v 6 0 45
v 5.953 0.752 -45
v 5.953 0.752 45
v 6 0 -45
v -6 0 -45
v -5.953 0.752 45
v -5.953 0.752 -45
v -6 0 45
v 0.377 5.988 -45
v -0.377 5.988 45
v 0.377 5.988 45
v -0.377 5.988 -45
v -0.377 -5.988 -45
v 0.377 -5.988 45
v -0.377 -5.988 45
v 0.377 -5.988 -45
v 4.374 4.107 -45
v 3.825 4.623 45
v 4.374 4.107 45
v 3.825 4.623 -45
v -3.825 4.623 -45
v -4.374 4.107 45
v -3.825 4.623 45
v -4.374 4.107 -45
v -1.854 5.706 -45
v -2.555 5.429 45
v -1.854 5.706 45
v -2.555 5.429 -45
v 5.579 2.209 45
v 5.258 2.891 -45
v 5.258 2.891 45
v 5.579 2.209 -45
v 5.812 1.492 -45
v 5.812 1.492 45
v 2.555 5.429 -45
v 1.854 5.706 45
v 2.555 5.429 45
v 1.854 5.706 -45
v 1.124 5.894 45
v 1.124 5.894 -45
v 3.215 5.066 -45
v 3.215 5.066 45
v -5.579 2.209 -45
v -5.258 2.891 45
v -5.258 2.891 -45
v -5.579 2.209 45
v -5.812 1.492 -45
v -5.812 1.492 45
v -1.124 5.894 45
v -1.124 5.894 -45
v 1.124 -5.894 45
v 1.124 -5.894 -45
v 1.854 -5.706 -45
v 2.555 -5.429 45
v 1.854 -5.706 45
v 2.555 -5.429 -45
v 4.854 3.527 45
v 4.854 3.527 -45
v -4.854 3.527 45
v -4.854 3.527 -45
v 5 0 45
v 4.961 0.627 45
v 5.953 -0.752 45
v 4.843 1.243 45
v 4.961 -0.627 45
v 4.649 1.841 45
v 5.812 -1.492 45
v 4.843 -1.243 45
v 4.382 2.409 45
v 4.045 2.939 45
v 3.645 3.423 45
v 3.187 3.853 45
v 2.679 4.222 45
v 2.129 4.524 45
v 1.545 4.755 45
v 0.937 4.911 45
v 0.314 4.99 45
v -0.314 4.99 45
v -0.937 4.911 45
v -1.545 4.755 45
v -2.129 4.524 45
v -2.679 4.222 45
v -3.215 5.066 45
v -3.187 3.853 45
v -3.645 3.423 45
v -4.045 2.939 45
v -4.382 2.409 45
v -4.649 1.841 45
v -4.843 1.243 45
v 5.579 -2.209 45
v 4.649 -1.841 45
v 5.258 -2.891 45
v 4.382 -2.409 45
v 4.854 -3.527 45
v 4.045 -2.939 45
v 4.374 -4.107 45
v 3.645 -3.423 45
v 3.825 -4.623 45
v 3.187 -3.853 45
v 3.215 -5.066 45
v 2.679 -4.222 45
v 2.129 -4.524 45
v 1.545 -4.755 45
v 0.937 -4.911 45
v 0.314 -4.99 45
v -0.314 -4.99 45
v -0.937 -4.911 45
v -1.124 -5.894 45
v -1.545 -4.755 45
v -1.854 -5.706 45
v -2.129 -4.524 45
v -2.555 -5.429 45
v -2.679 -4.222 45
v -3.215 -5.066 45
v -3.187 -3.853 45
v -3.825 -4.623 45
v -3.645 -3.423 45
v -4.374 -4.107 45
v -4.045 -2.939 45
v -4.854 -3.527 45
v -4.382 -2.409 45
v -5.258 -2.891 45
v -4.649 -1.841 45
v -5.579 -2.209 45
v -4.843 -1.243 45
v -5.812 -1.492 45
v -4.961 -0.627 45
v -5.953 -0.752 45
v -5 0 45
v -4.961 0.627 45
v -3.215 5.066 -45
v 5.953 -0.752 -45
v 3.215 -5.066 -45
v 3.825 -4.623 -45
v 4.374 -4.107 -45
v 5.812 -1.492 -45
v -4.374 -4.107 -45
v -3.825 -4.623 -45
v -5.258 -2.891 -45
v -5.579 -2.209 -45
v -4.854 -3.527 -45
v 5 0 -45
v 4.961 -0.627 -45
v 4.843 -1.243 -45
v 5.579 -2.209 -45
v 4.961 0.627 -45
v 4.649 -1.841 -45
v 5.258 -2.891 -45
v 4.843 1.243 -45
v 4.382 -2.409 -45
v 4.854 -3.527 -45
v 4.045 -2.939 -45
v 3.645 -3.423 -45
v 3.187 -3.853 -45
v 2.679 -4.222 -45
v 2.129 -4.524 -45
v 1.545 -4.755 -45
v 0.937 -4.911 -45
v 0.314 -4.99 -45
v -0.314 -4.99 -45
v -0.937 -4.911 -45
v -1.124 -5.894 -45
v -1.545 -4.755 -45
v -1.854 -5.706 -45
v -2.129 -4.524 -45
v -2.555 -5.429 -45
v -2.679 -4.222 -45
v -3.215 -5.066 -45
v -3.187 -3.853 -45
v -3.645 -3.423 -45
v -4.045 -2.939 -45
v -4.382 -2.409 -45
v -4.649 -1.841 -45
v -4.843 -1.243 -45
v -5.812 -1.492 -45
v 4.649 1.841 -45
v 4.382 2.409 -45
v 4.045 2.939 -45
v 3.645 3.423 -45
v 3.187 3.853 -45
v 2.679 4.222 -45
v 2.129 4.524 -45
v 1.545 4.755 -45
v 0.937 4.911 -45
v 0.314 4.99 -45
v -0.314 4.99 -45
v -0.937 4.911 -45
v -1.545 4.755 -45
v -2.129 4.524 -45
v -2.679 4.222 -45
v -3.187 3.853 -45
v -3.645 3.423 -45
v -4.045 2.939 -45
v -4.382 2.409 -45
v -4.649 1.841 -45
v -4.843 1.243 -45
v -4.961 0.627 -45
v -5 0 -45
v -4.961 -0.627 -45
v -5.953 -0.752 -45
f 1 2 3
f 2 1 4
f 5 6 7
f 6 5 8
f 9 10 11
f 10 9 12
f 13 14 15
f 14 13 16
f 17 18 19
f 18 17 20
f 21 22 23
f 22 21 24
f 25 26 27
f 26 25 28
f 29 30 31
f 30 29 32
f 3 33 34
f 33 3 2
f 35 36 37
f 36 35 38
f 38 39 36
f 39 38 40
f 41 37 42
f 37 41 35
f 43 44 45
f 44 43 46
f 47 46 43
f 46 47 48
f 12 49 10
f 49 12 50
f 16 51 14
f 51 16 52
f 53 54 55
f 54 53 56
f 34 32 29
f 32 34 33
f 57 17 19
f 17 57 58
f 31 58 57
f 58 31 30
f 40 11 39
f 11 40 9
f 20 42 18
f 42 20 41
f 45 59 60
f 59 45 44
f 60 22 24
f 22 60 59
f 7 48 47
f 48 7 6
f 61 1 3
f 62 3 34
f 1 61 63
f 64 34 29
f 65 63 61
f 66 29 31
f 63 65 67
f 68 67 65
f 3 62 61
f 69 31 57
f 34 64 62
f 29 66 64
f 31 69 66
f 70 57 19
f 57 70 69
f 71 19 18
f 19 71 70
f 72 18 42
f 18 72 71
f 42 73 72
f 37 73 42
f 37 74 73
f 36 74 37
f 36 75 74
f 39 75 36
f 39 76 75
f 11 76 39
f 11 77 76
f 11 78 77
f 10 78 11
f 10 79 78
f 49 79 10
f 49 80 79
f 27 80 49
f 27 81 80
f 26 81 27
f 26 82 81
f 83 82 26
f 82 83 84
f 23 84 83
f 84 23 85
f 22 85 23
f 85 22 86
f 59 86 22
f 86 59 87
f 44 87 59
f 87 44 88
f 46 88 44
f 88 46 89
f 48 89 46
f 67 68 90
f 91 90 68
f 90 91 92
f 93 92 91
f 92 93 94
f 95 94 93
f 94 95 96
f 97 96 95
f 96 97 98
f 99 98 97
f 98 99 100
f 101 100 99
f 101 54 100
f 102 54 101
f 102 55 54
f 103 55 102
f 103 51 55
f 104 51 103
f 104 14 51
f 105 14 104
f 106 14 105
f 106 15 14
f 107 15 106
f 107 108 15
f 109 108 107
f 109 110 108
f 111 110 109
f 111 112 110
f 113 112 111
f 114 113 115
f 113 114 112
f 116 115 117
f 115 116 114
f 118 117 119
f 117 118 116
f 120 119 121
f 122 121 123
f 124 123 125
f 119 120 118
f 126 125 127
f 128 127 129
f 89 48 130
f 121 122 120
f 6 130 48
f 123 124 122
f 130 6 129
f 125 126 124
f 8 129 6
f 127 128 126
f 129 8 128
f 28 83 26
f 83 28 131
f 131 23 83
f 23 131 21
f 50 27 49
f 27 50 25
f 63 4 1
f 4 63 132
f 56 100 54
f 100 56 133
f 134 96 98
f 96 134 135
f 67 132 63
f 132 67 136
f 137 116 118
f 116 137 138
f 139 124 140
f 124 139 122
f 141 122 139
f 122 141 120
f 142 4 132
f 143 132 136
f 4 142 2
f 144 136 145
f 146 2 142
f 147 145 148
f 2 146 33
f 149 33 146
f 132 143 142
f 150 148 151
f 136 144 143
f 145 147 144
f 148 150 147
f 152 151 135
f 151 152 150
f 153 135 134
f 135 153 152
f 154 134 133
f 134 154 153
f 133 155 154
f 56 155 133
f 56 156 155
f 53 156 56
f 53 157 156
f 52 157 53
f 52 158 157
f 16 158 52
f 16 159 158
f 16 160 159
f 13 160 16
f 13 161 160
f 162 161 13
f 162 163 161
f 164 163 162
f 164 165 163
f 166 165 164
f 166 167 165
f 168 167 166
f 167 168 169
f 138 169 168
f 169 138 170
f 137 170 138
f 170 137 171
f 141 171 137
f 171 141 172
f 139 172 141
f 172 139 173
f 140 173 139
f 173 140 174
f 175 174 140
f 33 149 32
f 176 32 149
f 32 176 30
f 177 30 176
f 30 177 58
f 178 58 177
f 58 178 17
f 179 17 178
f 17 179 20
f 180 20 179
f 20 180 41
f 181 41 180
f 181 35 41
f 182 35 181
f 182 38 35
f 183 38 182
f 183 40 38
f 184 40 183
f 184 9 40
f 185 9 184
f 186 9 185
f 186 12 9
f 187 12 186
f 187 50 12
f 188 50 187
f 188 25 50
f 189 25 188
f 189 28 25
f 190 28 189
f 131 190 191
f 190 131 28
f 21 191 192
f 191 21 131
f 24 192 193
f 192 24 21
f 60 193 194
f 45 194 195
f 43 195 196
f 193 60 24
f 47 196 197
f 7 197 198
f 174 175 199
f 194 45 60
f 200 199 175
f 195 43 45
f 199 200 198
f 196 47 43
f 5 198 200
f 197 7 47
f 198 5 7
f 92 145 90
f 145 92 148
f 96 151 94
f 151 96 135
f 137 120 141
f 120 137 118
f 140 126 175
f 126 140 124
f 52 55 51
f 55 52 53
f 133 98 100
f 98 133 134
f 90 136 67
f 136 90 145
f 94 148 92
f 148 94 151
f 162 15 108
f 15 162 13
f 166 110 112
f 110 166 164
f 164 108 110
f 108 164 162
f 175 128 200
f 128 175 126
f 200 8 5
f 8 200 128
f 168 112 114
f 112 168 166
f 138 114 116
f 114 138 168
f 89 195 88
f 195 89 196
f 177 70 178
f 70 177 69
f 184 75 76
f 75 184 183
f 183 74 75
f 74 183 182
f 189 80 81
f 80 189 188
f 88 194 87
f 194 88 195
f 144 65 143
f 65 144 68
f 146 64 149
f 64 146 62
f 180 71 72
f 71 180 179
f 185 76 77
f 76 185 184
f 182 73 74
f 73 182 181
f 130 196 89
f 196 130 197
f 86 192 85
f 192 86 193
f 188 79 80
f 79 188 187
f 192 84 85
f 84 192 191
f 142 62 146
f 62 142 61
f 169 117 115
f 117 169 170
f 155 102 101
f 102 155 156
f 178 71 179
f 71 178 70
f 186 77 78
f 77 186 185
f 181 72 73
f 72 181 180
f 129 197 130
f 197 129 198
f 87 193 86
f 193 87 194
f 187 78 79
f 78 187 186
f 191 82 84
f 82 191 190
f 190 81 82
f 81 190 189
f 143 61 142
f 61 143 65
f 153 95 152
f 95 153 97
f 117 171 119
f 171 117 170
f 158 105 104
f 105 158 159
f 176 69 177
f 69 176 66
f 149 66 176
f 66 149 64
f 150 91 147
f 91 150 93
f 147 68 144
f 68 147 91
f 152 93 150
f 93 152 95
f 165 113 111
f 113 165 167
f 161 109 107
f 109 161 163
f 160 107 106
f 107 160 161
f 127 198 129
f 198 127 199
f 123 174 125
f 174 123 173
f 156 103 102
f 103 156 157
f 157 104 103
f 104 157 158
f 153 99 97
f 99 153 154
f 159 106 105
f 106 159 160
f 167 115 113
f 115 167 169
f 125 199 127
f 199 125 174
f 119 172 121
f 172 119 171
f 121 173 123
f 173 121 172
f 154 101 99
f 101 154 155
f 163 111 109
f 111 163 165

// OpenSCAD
$fn = 50;


difference() {
	union() {
		translate(v = [0, 0, -45.0000000000]) {
			cylinder(h = 90, r = 6.0000000000);
		}
	}
	union() {
		translate(v = [0, 0, -100.0000000000]) {
			cylinder(h = 200, r = 5);
		}
	}
}
